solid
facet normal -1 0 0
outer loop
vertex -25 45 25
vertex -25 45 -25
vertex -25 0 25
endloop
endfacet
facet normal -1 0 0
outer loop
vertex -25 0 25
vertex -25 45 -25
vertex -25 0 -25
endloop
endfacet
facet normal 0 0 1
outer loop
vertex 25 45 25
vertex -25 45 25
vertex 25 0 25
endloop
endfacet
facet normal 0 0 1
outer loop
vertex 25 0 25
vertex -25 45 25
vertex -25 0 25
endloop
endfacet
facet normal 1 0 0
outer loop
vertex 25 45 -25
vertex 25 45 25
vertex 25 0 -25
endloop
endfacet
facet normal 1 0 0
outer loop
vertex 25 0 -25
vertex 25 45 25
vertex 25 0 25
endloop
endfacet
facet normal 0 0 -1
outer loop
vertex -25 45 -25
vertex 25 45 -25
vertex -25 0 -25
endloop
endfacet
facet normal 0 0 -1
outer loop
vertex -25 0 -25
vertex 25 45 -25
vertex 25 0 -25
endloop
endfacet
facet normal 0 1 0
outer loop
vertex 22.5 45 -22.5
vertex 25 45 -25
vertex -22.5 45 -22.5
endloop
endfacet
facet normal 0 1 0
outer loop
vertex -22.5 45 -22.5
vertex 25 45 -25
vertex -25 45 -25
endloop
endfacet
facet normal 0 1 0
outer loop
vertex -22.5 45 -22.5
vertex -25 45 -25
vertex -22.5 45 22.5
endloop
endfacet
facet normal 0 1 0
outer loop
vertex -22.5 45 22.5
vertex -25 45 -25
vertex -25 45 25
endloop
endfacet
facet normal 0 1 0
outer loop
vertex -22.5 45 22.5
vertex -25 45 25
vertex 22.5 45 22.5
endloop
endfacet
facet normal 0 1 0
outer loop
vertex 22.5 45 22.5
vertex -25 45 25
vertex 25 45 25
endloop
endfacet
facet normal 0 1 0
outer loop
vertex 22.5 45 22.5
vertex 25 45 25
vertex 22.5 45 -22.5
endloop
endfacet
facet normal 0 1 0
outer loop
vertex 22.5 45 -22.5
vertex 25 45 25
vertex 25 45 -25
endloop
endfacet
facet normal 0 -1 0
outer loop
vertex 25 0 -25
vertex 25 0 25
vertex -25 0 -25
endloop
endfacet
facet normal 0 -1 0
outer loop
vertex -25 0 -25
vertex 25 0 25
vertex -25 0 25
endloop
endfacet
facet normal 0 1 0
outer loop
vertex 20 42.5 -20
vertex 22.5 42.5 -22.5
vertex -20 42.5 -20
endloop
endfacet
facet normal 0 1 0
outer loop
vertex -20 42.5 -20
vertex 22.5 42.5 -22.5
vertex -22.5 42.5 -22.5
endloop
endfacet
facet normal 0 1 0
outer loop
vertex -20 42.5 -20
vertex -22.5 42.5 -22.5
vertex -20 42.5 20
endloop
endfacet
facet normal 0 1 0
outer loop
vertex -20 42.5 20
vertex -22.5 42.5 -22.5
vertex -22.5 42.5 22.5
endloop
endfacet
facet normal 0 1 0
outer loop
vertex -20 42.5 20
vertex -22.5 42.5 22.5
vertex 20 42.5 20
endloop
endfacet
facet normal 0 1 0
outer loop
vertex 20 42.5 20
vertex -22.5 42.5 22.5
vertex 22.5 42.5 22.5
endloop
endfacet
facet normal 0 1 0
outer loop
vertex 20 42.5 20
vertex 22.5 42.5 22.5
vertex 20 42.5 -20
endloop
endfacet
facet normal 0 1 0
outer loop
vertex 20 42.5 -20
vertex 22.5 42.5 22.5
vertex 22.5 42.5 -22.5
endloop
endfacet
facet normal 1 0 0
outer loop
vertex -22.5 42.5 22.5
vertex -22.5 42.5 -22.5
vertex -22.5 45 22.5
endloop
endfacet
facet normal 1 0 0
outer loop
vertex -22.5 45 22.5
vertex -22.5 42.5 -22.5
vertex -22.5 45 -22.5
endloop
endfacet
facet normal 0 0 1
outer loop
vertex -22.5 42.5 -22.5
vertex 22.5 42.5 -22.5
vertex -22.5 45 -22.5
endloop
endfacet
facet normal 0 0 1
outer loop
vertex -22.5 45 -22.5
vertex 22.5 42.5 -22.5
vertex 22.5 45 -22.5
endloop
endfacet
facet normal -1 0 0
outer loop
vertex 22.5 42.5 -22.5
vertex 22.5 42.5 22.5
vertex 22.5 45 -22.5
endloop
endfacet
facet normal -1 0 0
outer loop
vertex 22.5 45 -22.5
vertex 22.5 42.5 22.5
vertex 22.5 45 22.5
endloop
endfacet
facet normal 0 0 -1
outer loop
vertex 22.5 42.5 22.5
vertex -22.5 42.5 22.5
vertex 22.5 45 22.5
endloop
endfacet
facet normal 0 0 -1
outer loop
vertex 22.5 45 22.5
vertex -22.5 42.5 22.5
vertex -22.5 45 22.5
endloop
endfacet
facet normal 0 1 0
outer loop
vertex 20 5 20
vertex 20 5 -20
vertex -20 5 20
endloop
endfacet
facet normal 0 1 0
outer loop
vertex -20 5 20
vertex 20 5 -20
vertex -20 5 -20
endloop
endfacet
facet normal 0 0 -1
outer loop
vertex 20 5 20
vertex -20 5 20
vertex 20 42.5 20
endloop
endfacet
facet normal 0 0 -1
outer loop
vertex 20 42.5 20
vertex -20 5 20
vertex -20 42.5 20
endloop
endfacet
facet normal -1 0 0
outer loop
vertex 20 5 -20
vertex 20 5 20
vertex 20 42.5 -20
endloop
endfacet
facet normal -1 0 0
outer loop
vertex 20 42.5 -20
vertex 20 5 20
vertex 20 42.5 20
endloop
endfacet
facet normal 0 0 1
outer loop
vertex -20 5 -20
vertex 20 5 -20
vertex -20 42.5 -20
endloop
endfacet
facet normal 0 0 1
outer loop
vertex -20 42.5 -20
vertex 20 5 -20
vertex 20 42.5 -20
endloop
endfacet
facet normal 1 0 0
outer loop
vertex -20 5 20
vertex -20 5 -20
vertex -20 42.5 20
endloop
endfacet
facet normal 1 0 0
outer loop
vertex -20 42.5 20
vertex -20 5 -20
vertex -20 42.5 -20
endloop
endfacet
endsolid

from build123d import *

# Parameters (mm, degrees)
CROQUIS1_W              = 50
CROQUIS1_H              = 50
SALIENTE_EXTRUIR1_DEPTH = 45
CROQUIS2_W              = 40
CROQUIS2_H              = 40
CORTAR_EXTRUIR1_DEPTH   = 40
CROQUIS3_W              = 45
CROQUIS3_H              = 45
CORTAR_EXTRUIR2_DEPTH   = 2.5


with BuildPart() as part:
    # Croquis1 → Saliente-Extruir1 (new body)
    with BuildSketch(Plane(origin=(0, 0, 0), x_dir=(1, 0, 0), z_dir=(0, 1, 0))):
        Rectangle(CROQUIS1_W, CROQUIS1_H)
    extrude(amount=SALIENTE_EXTRUIR1_DEPTH)

    # Croquis2 → Cortar-Extruir1 (cut)
    with BuildSketch(Plane(origin=(0, 45, 0), x_dir=(1, 0, 0), z_dir=(0, 1, 0))):
        Rectangle(CROQUIS2_W, CROQUIS2_H)
    extrude(amount=-CORTAR_EXTRUIR1_DEPTH, mode=Mode.SUBTRACT)

    # Croquis3 → Cortar-Extruir2 (cut)
    with BuildSketch(Plane(origin=(0, 45, 0), x_dir=(1, 0, 0), z_dir=(0, 1, 0))):
        Rectangle(CROQUIS3_W, CROQUIS3_H)
    extrude(amount=-CORTAR_EXTRUIR2_DEPTH, mode=Mode.SUBTRACT)


solid = part.part
